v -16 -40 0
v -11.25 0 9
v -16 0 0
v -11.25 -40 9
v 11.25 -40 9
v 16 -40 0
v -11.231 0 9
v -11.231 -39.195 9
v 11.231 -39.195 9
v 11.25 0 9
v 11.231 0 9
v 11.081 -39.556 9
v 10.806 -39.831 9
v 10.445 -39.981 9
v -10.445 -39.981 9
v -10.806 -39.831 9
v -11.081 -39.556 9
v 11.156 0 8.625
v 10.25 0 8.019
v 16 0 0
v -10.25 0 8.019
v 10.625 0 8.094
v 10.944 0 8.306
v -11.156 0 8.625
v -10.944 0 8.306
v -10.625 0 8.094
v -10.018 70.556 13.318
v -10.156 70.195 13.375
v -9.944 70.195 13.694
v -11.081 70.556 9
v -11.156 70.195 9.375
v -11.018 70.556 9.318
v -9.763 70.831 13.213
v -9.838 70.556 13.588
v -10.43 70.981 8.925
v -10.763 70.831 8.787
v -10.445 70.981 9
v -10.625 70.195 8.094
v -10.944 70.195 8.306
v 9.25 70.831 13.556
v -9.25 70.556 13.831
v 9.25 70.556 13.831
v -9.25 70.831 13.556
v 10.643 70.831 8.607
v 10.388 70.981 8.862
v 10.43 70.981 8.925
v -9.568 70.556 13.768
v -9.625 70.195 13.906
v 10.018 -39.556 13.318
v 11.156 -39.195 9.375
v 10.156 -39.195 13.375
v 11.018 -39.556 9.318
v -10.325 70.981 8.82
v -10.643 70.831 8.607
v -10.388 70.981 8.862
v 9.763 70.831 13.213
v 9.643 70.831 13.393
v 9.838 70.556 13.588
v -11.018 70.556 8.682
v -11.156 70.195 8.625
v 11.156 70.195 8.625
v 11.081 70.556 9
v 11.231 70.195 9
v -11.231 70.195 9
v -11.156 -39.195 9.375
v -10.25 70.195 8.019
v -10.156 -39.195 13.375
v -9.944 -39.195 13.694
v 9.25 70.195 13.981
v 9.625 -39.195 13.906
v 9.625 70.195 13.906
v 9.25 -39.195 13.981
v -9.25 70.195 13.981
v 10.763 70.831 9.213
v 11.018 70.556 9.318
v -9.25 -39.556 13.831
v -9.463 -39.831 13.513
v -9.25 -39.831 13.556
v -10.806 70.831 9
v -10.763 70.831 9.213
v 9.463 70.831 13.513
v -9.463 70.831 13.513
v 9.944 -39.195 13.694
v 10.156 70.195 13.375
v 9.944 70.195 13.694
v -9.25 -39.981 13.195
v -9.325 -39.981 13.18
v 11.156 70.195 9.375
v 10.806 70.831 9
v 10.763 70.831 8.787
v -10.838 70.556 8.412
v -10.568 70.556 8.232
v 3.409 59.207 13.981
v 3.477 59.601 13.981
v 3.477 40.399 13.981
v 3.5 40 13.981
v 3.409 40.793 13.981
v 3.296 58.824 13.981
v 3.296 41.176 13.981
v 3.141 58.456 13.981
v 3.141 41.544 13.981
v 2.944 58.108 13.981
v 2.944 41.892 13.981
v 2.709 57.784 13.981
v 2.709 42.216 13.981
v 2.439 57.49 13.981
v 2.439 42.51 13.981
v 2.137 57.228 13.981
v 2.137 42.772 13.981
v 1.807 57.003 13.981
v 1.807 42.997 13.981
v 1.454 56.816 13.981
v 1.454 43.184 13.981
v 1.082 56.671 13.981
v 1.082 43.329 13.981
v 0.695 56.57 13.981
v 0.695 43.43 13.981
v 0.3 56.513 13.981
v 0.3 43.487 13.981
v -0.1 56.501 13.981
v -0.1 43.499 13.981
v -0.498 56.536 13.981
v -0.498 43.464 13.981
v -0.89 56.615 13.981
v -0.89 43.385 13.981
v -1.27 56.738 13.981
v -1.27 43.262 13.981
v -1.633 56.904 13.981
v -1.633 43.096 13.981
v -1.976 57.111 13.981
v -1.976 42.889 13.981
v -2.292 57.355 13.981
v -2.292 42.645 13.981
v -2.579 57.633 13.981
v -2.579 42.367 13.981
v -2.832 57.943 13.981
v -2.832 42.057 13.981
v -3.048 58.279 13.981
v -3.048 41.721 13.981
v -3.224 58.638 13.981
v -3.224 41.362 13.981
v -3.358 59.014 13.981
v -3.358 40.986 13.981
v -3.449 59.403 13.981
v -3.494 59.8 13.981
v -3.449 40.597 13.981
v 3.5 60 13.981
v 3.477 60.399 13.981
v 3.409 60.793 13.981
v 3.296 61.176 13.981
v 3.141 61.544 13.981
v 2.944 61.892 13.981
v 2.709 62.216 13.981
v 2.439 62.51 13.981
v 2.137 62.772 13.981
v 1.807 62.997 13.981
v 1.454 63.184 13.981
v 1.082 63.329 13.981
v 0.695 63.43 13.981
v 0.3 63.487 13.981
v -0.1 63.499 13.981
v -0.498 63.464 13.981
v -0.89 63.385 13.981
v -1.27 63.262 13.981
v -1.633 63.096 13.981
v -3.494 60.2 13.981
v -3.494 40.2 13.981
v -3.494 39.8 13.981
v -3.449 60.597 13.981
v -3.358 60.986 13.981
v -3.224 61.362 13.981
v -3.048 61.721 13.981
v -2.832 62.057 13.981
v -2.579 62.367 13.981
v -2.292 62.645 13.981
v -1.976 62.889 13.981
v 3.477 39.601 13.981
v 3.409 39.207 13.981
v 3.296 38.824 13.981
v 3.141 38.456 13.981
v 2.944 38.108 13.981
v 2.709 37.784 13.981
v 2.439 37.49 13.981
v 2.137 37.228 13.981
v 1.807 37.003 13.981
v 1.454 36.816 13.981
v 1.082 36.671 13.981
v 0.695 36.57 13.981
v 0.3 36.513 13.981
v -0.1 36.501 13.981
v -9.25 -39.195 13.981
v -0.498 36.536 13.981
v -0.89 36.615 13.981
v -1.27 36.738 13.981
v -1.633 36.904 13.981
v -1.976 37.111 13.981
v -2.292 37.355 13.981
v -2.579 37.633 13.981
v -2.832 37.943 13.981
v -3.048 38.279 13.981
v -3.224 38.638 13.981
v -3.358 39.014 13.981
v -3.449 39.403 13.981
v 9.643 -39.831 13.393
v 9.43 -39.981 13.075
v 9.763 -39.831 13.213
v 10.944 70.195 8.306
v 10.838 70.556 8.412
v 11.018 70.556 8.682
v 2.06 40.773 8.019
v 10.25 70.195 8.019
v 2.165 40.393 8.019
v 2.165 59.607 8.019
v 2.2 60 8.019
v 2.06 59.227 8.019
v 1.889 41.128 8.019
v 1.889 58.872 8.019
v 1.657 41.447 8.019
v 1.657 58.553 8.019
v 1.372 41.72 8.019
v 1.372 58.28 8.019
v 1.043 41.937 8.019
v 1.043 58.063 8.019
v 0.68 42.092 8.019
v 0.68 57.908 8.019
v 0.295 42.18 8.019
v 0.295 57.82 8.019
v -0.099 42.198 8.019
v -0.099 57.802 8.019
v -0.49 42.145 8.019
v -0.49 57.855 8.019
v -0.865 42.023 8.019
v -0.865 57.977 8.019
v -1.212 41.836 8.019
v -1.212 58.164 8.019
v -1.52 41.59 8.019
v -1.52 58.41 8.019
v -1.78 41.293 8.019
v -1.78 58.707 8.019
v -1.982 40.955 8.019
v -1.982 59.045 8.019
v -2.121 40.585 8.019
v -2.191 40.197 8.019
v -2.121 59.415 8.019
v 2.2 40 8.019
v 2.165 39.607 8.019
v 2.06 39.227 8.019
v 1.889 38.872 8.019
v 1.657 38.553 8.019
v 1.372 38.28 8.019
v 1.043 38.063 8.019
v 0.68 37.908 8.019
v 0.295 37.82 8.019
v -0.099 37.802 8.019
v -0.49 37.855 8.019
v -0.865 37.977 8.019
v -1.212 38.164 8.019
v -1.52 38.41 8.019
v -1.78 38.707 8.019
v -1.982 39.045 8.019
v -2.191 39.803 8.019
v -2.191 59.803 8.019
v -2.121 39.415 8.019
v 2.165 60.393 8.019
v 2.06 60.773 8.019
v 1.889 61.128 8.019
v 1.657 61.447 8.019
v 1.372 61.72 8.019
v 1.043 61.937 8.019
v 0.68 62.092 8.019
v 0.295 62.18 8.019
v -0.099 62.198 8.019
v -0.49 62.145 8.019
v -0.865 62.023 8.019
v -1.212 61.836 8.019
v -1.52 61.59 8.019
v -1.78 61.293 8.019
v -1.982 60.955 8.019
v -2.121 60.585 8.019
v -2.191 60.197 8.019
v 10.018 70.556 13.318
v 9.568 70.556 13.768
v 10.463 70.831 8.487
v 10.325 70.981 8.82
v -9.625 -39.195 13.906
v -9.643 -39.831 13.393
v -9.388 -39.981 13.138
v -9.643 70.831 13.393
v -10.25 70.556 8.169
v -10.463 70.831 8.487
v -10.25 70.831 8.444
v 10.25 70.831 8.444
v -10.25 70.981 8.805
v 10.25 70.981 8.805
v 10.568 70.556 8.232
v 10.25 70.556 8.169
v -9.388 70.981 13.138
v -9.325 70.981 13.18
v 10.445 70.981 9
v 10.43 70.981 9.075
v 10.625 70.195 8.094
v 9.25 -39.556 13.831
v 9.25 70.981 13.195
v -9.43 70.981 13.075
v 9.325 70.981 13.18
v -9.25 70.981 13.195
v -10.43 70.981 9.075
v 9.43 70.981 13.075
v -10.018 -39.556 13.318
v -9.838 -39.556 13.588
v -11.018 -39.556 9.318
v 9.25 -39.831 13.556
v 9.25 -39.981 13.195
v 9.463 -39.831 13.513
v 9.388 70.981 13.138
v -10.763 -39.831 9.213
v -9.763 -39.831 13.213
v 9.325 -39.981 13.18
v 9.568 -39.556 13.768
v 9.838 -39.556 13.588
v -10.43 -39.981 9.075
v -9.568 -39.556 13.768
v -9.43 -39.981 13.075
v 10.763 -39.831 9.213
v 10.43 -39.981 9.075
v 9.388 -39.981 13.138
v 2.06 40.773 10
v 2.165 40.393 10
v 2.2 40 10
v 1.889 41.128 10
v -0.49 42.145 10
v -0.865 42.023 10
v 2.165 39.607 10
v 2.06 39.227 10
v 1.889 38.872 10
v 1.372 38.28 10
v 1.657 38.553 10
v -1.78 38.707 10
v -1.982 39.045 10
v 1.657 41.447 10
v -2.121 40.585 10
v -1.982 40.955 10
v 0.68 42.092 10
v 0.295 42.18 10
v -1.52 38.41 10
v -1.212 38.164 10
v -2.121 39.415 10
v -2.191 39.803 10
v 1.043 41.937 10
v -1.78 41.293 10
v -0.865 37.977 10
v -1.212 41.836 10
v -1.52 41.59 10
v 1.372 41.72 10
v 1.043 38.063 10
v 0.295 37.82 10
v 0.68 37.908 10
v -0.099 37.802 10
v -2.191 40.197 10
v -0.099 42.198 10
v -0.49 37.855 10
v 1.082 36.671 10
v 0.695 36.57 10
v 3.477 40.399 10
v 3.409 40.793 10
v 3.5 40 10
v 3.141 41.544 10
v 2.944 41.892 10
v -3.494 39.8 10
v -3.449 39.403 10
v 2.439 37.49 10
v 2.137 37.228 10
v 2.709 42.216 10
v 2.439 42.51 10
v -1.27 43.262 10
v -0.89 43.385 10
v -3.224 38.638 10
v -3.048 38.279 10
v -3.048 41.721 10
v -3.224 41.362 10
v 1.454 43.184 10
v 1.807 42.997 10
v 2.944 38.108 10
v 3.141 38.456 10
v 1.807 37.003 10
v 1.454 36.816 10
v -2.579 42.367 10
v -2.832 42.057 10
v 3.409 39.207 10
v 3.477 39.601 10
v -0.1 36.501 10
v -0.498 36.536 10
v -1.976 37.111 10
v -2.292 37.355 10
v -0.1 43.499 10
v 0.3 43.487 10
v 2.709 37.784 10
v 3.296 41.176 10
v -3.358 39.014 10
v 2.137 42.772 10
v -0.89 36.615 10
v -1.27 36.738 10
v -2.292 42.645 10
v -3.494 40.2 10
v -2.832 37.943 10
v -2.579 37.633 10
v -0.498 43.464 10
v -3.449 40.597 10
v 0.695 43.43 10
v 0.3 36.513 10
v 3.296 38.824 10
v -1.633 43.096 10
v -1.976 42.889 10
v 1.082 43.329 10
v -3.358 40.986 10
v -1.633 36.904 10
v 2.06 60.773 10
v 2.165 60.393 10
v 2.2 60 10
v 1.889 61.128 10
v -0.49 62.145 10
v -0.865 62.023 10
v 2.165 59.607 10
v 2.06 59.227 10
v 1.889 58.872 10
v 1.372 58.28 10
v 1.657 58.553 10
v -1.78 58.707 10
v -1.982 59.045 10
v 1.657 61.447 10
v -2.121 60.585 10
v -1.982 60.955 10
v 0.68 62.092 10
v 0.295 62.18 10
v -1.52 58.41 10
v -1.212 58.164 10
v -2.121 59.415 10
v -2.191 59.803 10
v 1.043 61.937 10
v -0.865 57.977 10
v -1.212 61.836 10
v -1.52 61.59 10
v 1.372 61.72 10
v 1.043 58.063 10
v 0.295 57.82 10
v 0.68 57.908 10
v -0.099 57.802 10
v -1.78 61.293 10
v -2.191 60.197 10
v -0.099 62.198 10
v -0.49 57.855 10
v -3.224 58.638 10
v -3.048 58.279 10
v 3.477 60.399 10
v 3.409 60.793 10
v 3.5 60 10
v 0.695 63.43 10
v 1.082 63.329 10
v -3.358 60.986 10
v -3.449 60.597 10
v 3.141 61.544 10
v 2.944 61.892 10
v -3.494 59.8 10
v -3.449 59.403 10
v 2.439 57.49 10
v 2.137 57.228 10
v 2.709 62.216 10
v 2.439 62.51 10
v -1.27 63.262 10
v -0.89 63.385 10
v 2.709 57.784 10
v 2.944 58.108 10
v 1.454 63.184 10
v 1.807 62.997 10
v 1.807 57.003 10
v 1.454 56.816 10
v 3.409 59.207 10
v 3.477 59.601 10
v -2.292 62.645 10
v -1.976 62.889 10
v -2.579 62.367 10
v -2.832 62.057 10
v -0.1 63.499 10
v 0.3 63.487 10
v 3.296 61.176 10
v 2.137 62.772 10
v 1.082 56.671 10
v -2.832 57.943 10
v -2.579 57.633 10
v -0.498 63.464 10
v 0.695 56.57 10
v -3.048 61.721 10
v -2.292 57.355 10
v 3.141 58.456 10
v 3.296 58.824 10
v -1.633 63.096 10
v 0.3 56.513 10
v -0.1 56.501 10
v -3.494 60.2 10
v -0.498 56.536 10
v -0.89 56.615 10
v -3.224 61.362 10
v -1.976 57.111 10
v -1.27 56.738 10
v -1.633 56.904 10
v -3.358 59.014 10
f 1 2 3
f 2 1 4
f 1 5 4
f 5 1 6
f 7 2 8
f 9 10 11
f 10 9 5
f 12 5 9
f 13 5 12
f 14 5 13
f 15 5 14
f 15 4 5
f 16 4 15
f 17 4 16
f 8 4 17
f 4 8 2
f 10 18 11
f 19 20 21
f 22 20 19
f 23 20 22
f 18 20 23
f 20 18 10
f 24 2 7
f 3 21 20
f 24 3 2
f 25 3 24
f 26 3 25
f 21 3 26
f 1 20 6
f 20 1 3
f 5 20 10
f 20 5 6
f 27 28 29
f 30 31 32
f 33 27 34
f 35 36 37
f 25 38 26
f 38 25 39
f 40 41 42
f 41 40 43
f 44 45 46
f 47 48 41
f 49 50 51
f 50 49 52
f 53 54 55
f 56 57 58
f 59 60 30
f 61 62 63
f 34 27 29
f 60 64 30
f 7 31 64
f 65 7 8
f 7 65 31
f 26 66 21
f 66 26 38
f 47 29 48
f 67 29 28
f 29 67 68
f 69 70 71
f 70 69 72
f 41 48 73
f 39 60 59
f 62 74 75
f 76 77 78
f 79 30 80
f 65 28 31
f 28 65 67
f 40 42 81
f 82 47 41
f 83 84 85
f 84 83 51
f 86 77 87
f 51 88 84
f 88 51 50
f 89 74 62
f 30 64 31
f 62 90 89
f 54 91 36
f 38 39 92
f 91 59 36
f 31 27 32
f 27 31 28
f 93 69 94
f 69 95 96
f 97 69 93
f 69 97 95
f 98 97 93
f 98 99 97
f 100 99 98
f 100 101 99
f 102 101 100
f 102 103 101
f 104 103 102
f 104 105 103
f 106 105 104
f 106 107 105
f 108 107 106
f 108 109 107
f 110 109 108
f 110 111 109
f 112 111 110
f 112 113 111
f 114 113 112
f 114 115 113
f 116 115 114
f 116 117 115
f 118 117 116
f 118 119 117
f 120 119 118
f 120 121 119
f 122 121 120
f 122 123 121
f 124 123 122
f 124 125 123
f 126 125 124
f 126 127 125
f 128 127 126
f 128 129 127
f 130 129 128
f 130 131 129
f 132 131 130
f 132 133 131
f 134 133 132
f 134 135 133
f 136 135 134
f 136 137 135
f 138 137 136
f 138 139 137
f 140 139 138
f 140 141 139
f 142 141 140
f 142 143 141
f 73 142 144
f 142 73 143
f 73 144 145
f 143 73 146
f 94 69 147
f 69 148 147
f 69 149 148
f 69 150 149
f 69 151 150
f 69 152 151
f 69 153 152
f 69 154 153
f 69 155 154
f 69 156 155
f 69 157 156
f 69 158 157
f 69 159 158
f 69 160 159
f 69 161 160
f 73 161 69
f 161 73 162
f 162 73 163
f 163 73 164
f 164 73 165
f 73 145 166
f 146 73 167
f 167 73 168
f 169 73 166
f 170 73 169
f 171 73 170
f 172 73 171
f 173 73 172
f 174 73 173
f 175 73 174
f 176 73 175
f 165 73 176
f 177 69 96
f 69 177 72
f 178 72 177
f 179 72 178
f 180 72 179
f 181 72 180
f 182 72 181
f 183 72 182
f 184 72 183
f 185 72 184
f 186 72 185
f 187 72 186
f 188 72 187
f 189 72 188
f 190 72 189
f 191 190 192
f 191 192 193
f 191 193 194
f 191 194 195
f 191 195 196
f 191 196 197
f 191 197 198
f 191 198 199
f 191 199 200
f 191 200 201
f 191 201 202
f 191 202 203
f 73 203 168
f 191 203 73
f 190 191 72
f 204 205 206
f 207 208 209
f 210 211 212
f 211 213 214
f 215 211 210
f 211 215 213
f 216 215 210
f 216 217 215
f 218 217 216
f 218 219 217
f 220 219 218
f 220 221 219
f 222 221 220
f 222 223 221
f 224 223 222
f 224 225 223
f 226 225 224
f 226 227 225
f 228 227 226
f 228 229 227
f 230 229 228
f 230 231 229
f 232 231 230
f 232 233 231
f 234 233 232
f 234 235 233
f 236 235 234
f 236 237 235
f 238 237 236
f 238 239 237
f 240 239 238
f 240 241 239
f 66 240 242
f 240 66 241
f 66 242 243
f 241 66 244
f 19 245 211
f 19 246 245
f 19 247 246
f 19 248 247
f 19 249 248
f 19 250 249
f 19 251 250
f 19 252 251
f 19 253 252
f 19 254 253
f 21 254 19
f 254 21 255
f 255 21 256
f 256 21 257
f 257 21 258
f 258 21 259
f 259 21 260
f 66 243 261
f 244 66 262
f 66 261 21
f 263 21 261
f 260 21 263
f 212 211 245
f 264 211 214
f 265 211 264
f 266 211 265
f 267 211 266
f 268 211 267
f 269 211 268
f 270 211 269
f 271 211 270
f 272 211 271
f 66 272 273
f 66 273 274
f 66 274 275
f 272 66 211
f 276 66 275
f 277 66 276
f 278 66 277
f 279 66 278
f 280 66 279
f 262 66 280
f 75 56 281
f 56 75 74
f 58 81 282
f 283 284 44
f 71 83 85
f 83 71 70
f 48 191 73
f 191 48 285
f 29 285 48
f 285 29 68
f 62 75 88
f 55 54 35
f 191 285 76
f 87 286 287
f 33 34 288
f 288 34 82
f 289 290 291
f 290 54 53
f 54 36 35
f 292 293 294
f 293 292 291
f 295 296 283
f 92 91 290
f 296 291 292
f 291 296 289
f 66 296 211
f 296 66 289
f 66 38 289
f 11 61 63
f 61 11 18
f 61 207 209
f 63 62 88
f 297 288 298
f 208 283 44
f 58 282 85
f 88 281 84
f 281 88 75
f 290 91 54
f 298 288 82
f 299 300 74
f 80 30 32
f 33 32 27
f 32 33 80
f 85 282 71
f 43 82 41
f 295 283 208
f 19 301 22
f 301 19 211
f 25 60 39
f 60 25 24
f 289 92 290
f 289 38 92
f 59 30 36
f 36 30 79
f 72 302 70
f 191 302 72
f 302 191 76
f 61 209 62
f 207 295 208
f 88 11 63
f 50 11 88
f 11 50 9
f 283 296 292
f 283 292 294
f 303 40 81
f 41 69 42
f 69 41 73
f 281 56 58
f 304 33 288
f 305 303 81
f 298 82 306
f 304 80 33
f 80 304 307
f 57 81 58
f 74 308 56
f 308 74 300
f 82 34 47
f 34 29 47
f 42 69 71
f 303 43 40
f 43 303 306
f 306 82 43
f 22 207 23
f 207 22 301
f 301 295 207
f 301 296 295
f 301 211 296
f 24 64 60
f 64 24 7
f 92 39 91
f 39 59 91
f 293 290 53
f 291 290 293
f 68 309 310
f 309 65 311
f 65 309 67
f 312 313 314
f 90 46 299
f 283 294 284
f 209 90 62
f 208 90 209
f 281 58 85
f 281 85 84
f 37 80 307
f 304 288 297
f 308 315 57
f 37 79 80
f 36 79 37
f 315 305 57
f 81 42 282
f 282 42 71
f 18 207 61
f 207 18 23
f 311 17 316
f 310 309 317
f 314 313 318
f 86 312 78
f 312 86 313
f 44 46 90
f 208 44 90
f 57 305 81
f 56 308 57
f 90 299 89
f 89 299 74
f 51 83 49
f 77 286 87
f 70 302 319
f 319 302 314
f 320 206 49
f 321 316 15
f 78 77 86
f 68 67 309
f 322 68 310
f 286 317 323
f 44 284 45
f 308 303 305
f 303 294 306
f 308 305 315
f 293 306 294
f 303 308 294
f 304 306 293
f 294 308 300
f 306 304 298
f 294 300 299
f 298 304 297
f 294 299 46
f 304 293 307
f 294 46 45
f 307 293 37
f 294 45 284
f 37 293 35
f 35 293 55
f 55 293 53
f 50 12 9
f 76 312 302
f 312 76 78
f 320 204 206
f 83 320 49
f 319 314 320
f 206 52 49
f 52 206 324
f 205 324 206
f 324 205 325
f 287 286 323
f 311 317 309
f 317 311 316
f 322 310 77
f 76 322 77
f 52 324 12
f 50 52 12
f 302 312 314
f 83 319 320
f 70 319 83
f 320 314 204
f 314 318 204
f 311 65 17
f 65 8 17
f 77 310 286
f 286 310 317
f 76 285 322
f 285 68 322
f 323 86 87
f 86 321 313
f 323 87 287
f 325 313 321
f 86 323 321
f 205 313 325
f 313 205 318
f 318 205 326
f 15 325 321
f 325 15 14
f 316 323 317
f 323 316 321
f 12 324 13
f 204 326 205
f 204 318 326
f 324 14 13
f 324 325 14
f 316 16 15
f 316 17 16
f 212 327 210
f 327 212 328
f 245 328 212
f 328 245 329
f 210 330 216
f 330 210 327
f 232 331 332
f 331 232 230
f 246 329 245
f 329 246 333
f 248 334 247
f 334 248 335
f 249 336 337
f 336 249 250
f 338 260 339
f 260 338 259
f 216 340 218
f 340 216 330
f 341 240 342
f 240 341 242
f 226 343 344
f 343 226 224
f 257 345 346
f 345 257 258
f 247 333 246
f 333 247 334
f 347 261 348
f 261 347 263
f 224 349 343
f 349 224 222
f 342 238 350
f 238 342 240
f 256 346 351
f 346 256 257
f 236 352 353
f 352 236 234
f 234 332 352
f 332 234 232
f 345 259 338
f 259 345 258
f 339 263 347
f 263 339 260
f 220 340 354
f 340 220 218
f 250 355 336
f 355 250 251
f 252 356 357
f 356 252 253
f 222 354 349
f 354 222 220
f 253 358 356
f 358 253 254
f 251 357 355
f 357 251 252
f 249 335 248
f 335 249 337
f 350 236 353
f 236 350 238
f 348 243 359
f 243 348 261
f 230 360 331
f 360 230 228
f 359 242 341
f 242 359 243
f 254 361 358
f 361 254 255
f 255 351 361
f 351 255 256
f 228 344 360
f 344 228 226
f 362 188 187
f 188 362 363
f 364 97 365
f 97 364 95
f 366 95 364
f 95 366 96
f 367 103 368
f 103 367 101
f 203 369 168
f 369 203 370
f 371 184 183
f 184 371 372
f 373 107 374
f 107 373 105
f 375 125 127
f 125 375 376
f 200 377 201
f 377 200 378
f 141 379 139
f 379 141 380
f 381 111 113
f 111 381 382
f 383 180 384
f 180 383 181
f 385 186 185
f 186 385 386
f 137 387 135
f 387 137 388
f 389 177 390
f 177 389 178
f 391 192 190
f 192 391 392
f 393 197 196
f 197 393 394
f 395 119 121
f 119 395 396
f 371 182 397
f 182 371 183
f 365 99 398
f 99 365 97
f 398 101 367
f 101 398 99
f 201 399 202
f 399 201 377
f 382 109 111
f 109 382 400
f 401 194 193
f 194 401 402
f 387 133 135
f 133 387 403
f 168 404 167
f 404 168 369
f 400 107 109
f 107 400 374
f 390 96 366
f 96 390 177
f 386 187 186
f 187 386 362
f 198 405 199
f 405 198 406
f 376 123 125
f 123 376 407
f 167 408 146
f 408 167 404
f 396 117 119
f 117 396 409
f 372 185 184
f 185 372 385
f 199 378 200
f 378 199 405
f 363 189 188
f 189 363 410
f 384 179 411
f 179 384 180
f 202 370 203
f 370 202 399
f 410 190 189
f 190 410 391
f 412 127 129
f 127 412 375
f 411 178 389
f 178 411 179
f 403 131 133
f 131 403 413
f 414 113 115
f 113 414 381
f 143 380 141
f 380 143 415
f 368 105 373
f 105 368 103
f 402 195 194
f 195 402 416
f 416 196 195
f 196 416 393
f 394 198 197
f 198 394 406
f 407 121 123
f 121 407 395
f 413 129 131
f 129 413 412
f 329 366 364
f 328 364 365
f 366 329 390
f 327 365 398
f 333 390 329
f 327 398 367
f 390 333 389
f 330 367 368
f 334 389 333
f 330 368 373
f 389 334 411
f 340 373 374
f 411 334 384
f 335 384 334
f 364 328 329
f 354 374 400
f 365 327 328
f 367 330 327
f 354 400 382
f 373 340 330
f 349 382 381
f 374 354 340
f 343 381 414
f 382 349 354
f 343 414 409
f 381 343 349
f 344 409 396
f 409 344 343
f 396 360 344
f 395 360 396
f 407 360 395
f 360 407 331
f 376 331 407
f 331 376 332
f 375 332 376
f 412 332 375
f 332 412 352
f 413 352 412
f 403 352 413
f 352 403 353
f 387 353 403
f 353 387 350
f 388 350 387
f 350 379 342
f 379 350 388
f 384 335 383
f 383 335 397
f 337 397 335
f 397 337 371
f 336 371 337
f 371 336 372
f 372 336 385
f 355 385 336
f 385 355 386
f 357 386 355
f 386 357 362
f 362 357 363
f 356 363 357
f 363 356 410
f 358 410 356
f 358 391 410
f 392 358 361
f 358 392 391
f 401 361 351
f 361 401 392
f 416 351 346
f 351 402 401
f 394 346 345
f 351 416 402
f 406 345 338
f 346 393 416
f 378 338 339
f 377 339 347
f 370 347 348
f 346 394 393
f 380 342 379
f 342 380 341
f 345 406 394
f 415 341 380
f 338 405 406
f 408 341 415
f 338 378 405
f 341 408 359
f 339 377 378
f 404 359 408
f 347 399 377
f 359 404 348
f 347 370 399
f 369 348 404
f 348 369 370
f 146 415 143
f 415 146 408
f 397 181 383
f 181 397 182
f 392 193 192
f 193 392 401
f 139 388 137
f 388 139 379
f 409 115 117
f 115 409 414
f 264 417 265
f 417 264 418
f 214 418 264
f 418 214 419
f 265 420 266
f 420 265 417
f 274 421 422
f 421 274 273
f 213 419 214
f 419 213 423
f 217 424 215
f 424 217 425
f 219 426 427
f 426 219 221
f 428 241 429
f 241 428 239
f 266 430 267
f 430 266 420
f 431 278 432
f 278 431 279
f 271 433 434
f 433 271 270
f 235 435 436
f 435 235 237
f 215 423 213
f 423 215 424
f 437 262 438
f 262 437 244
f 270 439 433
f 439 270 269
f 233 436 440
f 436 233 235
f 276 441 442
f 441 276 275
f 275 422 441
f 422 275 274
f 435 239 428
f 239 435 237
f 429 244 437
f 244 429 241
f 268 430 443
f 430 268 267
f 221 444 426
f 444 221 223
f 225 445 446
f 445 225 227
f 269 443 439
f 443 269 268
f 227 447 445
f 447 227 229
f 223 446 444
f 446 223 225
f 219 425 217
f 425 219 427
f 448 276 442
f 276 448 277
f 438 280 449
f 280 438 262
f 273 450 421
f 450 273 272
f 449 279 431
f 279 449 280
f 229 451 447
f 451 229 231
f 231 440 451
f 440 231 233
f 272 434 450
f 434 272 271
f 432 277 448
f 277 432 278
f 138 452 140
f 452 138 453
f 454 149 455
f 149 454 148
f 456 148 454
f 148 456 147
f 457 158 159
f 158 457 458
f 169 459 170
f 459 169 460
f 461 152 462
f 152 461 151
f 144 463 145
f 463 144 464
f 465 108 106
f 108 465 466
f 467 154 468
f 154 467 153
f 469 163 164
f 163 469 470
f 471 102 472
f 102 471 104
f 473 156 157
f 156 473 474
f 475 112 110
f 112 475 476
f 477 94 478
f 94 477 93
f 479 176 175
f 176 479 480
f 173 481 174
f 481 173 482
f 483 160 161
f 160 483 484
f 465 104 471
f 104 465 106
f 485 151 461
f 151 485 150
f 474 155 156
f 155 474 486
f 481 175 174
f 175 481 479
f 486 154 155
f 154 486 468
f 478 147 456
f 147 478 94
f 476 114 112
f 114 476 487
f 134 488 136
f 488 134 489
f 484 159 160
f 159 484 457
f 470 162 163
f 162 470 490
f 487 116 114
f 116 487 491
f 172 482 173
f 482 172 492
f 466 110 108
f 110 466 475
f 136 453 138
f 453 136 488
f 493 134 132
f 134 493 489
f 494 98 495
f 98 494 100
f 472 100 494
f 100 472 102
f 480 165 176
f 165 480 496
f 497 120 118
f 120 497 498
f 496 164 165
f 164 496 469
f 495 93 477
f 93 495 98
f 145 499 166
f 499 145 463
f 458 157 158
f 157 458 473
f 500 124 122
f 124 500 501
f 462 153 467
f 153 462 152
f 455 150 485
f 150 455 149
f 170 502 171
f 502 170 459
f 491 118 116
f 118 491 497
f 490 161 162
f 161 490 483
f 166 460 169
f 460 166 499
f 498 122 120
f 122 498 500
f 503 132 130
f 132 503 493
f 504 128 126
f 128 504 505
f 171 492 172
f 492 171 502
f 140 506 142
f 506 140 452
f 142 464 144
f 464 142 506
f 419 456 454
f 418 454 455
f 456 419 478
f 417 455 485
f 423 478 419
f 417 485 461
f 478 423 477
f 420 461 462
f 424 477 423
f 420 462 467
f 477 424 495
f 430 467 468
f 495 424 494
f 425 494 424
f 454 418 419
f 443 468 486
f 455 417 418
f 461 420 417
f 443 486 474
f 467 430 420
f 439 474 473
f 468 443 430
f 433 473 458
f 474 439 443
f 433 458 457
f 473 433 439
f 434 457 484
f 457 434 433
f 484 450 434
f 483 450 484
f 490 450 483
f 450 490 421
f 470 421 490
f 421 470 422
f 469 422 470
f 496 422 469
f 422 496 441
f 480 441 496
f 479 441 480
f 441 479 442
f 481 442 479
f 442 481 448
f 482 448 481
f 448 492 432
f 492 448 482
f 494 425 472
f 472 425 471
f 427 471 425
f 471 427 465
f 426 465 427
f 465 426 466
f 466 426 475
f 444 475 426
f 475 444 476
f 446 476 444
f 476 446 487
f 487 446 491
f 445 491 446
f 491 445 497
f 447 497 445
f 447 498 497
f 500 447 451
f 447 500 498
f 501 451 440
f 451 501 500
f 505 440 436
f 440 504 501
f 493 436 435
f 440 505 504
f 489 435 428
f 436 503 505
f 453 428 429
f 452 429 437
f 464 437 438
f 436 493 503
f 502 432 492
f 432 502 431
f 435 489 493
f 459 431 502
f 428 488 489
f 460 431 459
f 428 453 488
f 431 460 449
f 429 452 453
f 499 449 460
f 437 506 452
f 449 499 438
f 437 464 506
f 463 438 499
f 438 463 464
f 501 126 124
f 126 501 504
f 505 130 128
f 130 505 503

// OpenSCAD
// Mounting bracket for ASIAir Plus with Synta base

$fa = 1;
$fs = 0.4;

arm_length = 110;
base_length = 40;
base_height = 9;

difference()
{
    rotate([ 90, 0, 0 ])
    {
        iso_trapazoid(short = 22.5, long = 32, length = base_length, height = base_height);
        translate([ 0, base_height, -(arm_length - base_length) ]) minkowski()
        {
            iso_trapazoid(short = 18.5, long = 20.5, length = arm_length - 1, height = 4);
            sphere(1);
        }
    }

    screw_hole(0, 40, 6, 4, 4, 7);
    screw_hole(0, 60, 6, 4, 4, 7);
}

// A counter-sunk screw hole
module screw_hole(x, y, h, d, ch, cd)
{
    translate([ x, y, h ]) cylinder(h, r = d / 2 + 0.2);
    translate([ x, y, h + ch ]) cylinder(h, r = cd / 2);
}

// 3D Isosceles Trapazoid
module iso_trapazoid(short, long, length, height, center = true)
{
    linear_extrude(length) translate([ center ? -long / 2 : 0, 0, 0 ])
        polygon(points = [ [ 0, 0 ], [ long / 2 - short / 2, height ], [ long / 2 + short / 2, height ], [ long, 0 ] ]);
}
